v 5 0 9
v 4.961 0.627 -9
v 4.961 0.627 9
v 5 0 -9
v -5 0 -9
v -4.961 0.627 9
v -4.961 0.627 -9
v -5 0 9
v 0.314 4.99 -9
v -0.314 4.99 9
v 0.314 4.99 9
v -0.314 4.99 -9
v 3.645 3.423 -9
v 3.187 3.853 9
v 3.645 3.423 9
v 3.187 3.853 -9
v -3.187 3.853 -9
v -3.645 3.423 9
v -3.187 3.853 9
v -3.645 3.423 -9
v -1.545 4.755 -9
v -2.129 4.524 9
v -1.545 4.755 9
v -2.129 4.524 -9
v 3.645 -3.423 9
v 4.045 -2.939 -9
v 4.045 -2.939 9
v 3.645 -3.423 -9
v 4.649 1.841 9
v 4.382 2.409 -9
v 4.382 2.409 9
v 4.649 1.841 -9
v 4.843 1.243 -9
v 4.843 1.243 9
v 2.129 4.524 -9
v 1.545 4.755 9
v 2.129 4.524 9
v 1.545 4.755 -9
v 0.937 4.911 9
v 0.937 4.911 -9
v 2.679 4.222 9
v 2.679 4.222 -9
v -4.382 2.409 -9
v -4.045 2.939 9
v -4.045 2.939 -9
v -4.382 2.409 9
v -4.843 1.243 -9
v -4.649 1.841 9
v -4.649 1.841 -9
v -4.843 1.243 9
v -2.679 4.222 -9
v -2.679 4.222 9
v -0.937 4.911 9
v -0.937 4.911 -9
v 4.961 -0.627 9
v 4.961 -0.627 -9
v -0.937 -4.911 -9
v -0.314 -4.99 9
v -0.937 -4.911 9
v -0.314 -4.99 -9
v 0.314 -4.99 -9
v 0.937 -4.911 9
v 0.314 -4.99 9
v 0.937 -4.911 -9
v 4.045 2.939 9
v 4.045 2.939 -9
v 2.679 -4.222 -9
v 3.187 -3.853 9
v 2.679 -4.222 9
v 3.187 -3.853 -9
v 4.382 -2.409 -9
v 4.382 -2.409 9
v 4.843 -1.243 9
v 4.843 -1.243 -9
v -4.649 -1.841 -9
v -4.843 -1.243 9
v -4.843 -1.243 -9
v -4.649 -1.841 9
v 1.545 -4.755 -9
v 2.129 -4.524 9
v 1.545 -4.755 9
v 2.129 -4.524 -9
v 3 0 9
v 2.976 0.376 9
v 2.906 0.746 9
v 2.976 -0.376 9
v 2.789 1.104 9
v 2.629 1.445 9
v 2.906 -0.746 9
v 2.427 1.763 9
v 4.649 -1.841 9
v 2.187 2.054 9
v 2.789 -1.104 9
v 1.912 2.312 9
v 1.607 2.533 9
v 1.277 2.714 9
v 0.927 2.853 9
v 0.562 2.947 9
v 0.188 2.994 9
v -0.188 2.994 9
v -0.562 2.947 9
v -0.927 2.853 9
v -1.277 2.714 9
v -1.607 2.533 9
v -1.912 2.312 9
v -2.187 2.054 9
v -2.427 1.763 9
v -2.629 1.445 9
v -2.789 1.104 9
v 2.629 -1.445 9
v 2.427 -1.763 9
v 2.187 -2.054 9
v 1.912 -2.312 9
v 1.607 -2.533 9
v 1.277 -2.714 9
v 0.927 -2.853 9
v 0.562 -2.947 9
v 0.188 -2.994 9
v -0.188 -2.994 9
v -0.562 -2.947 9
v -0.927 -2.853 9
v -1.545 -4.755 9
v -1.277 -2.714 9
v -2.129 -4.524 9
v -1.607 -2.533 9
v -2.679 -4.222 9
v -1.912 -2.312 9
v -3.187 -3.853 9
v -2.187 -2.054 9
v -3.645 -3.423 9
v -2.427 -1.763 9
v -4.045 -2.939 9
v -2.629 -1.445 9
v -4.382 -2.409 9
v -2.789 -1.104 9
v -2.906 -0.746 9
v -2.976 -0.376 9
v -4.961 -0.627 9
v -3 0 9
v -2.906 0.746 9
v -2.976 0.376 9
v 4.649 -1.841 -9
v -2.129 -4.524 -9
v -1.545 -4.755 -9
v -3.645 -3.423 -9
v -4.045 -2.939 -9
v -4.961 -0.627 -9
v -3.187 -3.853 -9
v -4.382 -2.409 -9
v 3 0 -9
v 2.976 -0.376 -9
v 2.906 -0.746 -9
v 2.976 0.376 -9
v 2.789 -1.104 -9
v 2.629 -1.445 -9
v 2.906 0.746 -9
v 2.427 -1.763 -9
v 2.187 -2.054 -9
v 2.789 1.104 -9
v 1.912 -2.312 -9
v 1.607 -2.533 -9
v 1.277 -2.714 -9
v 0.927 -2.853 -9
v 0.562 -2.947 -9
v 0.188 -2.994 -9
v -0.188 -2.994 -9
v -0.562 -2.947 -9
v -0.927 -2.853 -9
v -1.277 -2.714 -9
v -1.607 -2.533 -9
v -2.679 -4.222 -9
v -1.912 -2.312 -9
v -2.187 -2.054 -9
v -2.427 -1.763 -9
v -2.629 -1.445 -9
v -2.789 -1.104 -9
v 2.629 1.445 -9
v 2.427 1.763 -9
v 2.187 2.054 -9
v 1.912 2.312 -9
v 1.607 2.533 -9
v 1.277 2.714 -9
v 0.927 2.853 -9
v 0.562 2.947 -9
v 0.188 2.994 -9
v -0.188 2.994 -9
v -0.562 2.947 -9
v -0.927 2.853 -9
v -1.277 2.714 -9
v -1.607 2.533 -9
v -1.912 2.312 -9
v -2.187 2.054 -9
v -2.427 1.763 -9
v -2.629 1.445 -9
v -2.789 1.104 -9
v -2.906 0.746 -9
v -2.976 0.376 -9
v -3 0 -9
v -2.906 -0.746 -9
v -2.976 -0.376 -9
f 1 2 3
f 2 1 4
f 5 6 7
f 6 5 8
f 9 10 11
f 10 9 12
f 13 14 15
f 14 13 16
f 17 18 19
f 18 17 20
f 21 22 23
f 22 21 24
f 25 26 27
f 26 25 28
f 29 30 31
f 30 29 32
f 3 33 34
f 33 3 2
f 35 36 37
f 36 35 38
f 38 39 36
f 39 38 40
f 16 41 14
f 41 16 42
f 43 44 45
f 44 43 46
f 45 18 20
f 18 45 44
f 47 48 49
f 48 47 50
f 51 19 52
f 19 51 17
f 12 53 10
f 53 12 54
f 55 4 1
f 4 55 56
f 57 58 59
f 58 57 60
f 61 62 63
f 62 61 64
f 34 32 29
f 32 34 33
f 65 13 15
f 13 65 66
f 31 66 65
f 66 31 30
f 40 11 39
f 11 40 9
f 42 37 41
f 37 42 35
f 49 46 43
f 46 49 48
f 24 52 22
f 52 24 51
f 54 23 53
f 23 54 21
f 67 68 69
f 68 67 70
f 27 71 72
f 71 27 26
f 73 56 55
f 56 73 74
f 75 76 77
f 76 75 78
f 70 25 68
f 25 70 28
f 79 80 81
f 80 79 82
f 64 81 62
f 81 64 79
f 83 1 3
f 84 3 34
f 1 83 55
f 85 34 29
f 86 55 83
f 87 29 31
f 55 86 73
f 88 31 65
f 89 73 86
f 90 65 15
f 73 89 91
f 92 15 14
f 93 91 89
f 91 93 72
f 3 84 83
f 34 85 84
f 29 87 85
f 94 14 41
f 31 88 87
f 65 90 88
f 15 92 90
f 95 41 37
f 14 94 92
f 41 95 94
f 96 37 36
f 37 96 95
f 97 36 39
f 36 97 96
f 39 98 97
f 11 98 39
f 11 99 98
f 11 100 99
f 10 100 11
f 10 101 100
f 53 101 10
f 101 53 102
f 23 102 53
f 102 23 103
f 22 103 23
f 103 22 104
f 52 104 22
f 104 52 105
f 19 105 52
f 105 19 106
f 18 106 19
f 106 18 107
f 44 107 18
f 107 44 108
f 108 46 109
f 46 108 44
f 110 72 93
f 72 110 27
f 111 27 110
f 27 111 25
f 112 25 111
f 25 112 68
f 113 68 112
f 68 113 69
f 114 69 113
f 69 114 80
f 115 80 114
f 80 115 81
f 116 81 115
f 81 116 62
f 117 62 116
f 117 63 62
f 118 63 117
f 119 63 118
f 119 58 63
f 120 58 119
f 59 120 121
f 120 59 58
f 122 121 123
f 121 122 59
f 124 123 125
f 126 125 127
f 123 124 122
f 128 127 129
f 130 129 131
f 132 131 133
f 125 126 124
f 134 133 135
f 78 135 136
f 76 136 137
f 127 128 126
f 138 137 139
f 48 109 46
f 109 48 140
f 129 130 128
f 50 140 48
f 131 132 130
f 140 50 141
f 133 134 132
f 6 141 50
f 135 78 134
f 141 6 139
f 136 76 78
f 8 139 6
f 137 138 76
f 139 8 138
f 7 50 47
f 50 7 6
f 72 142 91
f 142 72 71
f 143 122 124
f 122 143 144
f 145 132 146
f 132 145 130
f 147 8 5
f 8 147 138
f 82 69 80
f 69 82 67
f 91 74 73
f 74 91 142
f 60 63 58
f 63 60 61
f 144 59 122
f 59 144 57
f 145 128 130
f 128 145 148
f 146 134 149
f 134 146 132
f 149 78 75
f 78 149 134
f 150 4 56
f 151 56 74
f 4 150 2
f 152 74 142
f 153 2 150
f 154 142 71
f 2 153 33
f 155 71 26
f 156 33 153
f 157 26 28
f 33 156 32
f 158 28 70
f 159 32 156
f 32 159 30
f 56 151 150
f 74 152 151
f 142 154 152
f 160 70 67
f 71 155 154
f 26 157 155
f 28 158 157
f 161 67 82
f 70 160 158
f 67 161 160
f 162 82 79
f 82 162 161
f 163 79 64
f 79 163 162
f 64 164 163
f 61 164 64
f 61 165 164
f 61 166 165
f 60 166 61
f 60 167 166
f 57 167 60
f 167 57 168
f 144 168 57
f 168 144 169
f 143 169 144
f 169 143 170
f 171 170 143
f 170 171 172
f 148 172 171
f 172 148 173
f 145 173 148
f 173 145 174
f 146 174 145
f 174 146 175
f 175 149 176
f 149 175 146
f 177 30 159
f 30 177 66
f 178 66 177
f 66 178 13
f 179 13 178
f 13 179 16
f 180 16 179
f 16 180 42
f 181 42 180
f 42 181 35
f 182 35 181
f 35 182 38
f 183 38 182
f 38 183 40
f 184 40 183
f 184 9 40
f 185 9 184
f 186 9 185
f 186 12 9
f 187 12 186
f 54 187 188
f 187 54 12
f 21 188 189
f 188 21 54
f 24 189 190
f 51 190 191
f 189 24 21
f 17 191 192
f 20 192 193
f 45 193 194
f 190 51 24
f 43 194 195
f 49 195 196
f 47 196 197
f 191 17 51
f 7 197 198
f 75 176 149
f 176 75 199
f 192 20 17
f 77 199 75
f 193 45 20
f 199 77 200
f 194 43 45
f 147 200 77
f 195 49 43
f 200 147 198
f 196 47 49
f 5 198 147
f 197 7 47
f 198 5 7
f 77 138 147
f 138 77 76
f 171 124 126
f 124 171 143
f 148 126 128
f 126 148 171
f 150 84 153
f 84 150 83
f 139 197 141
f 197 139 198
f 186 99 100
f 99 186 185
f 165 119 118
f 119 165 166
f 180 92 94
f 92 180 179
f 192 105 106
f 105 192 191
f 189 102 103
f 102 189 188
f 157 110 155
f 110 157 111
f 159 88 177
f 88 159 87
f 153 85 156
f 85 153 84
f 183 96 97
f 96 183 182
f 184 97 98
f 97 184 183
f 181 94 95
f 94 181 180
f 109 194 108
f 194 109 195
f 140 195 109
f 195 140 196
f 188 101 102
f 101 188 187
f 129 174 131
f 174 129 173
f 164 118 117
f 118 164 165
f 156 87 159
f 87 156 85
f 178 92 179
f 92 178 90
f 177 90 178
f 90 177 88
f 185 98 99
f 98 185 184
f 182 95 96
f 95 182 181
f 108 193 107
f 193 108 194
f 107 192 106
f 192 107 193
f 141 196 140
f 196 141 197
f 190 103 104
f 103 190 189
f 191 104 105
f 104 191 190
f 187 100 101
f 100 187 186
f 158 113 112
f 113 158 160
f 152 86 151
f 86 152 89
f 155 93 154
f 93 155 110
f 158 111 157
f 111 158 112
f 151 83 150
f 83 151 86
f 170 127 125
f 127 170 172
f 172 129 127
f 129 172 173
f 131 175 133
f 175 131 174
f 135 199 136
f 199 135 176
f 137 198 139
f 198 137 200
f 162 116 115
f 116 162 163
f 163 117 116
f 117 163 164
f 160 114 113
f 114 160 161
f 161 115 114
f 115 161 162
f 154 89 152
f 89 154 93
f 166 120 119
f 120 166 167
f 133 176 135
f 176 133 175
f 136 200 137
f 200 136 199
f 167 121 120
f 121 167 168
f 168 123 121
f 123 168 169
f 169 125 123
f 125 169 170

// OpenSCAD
$fn = 50;


difference() {
	union() {
		translate(v = [0, 0, -9.0000000000]) {
			cylinder(h = 18, r = 5.0000000000);
		}
	}
	union() {
		translate(v = [0, 0, -100.0000000000]) {
			cylinder(h = 200, r = 3.0000000000);
		}
	}
}
